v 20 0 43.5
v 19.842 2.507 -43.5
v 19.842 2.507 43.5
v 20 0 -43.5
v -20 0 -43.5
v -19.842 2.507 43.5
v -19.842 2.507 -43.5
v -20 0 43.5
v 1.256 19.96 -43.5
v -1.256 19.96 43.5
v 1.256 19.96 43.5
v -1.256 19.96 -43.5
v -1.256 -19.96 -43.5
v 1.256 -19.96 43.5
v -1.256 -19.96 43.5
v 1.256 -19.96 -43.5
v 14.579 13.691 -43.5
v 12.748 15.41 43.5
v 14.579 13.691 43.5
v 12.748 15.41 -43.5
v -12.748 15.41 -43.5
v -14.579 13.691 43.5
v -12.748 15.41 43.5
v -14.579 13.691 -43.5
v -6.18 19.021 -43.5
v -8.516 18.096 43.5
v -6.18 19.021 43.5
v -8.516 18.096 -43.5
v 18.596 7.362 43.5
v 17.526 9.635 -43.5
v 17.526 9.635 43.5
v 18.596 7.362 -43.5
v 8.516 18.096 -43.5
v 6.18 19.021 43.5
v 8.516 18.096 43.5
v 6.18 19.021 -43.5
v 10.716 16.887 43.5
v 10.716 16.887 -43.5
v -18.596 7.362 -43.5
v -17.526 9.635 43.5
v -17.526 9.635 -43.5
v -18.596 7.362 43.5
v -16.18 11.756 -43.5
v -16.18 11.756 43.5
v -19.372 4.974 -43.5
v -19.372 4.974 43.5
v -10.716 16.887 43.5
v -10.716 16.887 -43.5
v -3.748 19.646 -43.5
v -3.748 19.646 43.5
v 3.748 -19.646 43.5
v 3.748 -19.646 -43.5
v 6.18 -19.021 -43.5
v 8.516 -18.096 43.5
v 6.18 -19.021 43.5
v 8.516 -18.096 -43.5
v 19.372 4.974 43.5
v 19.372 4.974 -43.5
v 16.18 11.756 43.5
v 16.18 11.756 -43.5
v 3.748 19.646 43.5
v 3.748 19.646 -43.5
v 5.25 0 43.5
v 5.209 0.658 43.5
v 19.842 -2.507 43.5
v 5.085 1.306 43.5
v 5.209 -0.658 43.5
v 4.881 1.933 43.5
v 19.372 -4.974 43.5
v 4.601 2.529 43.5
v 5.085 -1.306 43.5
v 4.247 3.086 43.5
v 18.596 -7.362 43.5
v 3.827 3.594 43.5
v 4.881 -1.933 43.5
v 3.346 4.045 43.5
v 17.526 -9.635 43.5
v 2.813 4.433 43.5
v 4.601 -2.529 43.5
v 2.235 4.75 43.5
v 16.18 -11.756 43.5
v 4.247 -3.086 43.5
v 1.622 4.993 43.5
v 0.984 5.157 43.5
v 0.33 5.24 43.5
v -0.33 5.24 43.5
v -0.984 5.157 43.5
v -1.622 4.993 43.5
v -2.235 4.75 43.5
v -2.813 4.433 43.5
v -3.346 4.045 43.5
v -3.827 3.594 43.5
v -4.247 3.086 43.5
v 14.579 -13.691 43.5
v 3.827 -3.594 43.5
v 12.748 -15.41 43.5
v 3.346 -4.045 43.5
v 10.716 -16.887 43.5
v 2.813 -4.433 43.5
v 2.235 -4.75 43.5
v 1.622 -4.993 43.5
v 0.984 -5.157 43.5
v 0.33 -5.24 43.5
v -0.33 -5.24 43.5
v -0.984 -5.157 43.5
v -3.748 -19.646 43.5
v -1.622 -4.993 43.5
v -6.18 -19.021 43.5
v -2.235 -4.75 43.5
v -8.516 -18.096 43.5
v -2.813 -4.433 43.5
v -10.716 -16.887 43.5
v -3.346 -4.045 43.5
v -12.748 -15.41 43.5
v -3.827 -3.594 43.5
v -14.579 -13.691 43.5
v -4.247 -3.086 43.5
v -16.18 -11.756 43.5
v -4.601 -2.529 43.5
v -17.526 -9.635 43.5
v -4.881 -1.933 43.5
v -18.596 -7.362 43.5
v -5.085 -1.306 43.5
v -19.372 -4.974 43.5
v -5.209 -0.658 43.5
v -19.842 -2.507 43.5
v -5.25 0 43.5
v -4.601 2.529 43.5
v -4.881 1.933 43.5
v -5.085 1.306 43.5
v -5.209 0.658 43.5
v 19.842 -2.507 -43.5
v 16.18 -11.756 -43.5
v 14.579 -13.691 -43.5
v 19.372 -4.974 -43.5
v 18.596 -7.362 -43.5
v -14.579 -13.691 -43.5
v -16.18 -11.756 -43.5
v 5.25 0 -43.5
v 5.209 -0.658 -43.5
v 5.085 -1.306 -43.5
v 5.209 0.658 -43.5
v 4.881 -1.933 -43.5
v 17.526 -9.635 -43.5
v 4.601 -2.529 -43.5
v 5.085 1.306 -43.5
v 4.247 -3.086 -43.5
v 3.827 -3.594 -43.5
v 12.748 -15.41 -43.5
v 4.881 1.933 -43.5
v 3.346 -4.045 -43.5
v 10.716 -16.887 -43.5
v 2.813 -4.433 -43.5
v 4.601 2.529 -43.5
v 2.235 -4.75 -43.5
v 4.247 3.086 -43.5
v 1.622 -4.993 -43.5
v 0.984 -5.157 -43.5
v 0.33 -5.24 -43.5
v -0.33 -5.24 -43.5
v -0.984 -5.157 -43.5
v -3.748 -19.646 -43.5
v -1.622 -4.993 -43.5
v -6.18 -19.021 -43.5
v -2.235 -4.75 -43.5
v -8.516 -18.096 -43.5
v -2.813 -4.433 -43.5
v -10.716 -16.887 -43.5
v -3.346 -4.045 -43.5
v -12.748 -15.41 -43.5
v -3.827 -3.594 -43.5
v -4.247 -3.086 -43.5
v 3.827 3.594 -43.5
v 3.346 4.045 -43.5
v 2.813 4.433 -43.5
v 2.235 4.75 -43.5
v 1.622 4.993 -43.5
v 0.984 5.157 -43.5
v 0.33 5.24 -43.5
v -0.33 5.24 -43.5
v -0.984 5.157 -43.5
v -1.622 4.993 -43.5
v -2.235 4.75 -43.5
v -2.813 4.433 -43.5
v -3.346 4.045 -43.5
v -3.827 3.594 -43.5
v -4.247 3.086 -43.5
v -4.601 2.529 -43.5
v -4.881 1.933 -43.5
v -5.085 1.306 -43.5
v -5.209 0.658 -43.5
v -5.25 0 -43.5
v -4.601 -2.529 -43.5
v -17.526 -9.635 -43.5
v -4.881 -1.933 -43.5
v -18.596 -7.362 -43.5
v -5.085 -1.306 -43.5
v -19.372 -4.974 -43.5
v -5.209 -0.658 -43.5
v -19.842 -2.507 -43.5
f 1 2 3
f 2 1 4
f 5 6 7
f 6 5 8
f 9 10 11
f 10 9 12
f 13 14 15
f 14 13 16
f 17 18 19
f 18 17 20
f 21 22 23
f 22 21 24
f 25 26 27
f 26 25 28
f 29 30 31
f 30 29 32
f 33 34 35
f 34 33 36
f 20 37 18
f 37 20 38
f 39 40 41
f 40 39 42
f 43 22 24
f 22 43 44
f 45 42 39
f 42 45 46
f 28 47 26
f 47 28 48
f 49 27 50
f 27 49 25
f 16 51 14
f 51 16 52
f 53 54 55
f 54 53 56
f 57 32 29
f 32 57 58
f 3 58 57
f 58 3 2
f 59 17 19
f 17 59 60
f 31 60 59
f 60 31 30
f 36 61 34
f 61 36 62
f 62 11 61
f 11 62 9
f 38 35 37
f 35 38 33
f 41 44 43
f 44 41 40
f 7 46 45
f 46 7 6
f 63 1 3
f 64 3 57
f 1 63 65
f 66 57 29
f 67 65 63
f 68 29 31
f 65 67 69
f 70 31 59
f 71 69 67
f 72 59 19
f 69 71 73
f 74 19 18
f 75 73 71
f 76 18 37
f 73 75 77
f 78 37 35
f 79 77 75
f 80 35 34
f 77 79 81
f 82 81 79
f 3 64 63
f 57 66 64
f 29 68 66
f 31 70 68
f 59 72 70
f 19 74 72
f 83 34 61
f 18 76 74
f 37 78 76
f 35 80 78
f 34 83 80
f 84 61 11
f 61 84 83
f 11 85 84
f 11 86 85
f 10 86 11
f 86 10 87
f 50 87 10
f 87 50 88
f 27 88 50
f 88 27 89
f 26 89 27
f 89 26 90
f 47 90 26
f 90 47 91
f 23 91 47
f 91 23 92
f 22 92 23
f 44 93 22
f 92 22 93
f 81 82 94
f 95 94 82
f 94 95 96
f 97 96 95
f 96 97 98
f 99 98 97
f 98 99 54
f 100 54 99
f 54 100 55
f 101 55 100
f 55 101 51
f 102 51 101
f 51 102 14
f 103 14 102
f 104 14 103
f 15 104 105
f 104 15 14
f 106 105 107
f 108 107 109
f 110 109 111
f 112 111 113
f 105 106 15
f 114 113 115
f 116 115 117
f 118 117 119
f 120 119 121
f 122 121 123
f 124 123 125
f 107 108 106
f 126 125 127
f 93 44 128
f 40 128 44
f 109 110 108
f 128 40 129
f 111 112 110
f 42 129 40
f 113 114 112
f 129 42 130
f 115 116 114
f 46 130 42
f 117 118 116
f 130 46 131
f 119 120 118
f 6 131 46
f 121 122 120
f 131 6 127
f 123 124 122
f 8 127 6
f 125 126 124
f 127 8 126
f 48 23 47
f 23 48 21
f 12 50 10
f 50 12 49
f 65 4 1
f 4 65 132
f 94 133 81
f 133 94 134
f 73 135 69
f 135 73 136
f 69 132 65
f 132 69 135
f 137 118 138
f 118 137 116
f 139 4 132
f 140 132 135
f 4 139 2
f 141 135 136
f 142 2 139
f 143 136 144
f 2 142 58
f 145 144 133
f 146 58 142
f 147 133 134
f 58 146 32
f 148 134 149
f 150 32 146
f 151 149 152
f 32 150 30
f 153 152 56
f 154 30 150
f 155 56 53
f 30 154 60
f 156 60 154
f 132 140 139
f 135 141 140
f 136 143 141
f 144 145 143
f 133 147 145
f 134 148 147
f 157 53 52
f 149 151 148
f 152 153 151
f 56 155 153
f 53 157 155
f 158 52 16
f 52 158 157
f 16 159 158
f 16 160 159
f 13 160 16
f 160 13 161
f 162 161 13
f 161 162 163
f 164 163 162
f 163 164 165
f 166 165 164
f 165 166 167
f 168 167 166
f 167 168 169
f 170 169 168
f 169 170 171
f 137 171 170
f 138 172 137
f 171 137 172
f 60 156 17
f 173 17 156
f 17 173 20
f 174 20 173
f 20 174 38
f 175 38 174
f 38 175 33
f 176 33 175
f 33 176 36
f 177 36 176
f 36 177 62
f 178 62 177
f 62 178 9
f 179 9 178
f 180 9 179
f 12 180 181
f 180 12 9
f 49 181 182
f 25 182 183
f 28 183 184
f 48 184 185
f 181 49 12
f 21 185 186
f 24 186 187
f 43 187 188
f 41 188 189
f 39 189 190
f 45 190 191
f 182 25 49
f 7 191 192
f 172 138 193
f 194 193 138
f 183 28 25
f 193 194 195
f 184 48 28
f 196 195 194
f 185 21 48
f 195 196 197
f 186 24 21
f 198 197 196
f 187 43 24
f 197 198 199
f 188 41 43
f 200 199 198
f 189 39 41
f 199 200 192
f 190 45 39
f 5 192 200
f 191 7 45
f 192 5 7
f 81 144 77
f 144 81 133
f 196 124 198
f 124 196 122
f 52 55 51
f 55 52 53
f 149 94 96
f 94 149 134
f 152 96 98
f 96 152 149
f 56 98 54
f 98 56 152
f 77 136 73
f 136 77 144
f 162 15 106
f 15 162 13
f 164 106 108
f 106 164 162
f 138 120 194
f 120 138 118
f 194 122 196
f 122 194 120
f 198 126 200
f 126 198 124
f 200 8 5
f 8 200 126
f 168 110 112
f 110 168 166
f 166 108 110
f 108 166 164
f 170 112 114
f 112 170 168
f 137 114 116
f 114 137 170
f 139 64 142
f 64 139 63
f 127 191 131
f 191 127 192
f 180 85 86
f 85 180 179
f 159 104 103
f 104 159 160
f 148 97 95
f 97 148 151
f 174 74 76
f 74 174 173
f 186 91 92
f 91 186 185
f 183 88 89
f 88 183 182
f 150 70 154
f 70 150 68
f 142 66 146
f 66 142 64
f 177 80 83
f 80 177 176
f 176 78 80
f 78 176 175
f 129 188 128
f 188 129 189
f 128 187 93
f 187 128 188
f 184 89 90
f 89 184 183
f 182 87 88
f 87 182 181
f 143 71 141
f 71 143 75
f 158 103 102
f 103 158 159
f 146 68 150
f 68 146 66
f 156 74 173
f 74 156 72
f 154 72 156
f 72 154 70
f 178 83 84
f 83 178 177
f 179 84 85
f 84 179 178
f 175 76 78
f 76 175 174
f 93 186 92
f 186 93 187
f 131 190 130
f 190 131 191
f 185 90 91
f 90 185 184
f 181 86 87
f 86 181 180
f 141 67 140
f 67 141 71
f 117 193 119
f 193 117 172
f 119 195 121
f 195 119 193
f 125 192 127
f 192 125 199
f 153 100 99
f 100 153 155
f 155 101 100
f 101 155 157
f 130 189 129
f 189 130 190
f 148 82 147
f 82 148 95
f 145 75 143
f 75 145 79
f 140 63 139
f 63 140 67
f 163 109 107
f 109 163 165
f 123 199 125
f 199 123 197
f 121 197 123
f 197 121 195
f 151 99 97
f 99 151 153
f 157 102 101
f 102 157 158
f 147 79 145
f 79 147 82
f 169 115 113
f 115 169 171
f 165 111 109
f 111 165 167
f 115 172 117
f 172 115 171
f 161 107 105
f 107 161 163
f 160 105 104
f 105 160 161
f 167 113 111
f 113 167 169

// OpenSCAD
$fn = 50;


difference() {
	union() {
		translate(v = [0, 0, -43.5000000000]) {
			cylinder(h = 87, r = 20.0000000000);
		}
	}
	union() {
		translate(v = [0, 0, -100.0000000000]) {
			cylinder(h = 200, r = 5.2500000000);
		}
	}
}
